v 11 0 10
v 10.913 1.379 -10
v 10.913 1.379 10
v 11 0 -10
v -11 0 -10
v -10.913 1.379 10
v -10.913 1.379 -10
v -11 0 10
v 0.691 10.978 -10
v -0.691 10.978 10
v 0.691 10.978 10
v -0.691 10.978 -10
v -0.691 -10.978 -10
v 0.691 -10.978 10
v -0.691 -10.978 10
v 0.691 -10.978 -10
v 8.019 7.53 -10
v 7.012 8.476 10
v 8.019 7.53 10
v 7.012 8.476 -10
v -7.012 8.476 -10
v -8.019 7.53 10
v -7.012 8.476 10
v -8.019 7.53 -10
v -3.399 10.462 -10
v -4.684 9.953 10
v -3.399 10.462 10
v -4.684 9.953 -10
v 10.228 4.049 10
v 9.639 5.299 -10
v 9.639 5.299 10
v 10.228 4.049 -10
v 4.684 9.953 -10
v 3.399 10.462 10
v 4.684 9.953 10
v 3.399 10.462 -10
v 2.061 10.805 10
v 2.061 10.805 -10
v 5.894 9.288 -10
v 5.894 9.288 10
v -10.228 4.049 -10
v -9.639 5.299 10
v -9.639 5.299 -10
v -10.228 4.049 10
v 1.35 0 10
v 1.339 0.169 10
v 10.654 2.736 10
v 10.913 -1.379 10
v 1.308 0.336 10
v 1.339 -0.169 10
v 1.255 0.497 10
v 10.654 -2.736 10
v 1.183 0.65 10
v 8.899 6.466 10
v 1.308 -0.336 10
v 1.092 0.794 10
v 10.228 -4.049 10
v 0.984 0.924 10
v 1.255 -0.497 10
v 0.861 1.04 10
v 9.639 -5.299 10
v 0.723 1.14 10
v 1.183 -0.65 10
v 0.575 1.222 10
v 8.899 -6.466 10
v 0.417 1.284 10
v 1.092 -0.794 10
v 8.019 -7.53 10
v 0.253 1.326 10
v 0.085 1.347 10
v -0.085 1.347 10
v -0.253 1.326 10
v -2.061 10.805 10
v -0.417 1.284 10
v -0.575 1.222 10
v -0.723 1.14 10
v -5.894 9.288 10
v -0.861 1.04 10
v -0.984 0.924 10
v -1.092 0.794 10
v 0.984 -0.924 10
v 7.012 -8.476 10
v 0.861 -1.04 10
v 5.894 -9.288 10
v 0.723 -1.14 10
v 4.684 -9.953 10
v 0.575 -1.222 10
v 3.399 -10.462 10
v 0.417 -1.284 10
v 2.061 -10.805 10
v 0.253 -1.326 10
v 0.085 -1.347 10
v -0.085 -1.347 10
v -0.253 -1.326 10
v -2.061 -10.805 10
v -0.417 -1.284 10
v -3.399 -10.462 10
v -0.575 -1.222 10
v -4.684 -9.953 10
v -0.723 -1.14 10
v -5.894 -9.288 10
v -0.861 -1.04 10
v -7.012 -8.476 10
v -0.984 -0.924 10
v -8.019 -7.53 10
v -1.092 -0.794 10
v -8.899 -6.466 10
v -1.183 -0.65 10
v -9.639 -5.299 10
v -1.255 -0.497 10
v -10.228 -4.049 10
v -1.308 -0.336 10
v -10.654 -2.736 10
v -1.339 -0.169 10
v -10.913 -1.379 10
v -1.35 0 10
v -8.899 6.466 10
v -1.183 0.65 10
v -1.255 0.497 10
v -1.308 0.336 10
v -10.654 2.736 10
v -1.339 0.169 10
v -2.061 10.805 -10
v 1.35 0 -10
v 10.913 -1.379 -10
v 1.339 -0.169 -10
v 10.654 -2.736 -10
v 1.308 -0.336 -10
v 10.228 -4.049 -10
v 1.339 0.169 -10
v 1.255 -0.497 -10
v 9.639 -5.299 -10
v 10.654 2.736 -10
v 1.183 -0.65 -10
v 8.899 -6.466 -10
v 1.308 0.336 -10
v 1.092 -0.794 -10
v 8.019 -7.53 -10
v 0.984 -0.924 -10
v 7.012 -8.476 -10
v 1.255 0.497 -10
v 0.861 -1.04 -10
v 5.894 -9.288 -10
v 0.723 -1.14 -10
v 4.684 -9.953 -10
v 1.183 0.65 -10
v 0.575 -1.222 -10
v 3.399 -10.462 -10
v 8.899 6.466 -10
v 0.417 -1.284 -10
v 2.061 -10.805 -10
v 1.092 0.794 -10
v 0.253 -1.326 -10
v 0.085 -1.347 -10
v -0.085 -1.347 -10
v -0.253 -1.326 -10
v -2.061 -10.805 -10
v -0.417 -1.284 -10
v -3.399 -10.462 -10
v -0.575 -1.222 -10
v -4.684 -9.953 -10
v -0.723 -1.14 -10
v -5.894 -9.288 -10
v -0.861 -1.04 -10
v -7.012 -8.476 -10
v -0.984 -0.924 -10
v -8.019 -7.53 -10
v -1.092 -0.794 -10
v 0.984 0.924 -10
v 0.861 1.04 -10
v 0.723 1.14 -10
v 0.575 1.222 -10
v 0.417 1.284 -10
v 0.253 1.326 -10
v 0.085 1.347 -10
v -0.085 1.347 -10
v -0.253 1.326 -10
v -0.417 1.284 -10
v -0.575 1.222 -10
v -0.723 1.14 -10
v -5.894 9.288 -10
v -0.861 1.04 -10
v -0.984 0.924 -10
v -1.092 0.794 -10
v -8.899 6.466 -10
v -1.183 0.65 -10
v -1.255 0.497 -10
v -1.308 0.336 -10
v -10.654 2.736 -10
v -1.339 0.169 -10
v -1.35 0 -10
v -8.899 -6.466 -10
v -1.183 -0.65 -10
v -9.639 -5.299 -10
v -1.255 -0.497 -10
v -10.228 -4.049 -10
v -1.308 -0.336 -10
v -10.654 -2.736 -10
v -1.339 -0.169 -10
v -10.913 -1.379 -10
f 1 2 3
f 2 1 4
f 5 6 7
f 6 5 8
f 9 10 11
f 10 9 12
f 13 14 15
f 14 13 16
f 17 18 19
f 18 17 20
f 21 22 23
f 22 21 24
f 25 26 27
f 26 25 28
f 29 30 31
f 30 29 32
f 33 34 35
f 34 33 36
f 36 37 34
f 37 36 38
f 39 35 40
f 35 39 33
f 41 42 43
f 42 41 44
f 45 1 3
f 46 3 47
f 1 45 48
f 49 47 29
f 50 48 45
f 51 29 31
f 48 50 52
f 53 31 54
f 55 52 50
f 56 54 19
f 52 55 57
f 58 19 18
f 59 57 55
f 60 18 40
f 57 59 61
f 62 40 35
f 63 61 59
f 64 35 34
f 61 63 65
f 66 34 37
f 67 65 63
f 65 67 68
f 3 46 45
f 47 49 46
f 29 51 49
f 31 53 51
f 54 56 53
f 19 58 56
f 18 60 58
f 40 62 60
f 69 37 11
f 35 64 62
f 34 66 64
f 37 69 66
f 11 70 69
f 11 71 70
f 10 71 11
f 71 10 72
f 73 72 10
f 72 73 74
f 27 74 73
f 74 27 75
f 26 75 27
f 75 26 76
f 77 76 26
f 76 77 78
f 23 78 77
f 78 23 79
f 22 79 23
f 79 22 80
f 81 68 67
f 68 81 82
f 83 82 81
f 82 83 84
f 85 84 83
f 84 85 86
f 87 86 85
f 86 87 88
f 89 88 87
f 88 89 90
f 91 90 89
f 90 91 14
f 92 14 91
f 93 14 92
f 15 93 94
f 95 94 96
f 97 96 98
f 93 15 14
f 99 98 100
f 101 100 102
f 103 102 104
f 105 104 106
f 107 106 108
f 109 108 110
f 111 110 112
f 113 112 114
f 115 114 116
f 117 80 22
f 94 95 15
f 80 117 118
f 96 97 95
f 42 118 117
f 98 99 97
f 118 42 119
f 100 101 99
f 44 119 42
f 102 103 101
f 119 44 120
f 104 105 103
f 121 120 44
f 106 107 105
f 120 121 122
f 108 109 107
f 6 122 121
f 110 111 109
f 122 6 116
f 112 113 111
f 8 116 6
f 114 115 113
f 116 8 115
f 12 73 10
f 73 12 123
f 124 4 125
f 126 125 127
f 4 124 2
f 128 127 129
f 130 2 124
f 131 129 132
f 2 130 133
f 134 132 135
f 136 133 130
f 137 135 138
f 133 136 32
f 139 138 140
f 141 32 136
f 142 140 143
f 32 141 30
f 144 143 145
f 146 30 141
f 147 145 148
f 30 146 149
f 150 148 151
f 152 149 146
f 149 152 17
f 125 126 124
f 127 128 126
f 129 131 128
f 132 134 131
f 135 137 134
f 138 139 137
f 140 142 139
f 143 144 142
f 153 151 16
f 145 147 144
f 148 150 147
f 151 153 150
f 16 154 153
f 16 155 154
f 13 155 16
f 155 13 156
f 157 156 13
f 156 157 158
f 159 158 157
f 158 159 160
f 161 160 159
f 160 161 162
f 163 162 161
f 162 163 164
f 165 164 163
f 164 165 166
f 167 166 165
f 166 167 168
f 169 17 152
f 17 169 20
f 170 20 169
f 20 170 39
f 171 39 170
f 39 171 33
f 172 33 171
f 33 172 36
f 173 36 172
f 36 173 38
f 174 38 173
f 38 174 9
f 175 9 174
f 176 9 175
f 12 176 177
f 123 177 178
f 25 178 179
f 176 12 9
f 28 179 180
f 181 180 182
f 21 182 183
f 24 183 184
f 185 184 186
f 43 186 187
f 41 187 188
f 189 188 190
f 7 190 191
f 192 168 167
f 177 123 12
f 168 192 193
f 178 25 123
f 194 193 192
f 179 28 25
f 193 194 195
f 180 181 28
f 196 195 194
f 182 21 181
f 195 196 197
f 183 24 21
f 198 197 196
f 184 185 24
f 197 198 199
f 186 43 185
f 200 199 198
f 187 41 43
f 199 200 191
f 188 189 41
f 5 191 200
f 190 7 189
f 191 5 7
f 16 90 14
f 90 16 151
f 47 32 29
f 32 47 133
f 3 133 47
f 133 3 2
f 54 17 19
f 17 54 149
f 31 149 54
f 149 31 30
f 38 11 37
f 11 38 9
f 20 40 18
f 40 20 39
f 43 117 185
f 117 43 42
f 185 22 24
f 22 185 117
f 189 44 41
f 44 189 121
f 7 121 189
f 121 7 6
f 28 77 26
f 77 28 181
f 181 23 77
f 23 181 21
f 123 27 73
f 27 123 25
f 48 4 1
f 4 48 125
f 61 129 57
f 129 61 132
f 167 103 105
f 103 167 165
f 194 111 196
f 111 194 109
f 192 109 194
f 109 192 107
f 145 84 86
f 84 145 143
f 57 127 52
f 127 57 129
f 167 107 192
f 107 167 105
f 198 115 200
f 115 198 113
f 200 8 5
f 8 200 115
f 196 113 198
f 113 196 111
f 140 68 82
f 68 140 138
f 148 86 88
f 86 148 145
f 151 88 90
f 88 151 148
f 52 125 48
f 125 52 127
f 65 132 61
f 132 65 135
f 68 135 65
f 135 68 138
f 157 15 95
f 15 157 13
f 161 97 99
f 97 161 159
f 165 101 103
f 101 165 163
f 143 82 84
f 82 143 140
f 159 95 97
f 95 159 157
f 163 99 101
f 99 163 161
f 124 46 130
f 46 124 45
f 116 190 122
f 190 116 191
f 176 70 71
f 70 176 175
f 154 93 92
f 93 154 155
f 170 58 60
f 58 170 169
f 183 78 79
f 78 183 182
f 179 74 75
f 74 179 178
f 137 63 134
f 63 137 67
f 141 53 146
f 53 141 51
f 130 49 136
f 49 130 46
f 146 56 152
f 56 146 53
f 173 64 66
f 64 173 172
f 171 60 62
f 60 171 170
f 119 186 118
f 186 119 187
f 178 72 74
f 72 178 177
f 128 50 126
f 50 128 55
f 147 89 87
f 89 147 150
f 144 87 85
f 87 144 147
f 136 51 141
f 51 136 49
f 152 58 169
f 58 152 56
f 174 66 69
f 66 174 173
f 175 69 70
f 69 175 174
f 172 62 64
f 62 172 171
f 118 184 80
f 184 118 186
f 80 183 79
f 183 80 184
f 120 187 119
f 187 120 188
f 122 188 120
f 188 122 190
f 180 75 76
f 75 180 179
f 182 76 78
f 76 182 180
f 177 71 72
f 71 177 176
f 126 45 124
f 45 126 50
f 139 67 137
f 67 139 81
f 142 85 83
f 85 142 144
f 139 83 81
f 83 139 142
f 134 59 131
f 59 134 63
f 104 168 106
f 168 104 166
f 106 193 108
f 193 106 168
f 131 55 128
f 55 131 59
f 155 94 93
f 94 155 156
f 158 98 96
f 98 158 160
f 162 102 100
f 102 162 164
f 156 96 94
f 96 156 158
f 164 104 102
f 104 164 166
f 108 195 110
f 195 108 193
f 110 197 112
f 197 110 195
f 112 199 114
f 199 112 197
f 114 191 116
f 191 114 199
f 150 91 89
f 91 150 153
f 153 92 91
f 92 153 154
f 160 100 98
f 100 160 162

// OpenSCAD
$fn = 50;


difference() {
	union() {
		translate(v = [0, 0, -10.0000000000]) {
			cylinder(h = 20, r = 11.0000000000);
		}
	}
	union() {
		translate(v = [0, 0, -100.0000000000]) {
			cylinder(h = 200, r = 1.3500000000);
		}
	}
}
